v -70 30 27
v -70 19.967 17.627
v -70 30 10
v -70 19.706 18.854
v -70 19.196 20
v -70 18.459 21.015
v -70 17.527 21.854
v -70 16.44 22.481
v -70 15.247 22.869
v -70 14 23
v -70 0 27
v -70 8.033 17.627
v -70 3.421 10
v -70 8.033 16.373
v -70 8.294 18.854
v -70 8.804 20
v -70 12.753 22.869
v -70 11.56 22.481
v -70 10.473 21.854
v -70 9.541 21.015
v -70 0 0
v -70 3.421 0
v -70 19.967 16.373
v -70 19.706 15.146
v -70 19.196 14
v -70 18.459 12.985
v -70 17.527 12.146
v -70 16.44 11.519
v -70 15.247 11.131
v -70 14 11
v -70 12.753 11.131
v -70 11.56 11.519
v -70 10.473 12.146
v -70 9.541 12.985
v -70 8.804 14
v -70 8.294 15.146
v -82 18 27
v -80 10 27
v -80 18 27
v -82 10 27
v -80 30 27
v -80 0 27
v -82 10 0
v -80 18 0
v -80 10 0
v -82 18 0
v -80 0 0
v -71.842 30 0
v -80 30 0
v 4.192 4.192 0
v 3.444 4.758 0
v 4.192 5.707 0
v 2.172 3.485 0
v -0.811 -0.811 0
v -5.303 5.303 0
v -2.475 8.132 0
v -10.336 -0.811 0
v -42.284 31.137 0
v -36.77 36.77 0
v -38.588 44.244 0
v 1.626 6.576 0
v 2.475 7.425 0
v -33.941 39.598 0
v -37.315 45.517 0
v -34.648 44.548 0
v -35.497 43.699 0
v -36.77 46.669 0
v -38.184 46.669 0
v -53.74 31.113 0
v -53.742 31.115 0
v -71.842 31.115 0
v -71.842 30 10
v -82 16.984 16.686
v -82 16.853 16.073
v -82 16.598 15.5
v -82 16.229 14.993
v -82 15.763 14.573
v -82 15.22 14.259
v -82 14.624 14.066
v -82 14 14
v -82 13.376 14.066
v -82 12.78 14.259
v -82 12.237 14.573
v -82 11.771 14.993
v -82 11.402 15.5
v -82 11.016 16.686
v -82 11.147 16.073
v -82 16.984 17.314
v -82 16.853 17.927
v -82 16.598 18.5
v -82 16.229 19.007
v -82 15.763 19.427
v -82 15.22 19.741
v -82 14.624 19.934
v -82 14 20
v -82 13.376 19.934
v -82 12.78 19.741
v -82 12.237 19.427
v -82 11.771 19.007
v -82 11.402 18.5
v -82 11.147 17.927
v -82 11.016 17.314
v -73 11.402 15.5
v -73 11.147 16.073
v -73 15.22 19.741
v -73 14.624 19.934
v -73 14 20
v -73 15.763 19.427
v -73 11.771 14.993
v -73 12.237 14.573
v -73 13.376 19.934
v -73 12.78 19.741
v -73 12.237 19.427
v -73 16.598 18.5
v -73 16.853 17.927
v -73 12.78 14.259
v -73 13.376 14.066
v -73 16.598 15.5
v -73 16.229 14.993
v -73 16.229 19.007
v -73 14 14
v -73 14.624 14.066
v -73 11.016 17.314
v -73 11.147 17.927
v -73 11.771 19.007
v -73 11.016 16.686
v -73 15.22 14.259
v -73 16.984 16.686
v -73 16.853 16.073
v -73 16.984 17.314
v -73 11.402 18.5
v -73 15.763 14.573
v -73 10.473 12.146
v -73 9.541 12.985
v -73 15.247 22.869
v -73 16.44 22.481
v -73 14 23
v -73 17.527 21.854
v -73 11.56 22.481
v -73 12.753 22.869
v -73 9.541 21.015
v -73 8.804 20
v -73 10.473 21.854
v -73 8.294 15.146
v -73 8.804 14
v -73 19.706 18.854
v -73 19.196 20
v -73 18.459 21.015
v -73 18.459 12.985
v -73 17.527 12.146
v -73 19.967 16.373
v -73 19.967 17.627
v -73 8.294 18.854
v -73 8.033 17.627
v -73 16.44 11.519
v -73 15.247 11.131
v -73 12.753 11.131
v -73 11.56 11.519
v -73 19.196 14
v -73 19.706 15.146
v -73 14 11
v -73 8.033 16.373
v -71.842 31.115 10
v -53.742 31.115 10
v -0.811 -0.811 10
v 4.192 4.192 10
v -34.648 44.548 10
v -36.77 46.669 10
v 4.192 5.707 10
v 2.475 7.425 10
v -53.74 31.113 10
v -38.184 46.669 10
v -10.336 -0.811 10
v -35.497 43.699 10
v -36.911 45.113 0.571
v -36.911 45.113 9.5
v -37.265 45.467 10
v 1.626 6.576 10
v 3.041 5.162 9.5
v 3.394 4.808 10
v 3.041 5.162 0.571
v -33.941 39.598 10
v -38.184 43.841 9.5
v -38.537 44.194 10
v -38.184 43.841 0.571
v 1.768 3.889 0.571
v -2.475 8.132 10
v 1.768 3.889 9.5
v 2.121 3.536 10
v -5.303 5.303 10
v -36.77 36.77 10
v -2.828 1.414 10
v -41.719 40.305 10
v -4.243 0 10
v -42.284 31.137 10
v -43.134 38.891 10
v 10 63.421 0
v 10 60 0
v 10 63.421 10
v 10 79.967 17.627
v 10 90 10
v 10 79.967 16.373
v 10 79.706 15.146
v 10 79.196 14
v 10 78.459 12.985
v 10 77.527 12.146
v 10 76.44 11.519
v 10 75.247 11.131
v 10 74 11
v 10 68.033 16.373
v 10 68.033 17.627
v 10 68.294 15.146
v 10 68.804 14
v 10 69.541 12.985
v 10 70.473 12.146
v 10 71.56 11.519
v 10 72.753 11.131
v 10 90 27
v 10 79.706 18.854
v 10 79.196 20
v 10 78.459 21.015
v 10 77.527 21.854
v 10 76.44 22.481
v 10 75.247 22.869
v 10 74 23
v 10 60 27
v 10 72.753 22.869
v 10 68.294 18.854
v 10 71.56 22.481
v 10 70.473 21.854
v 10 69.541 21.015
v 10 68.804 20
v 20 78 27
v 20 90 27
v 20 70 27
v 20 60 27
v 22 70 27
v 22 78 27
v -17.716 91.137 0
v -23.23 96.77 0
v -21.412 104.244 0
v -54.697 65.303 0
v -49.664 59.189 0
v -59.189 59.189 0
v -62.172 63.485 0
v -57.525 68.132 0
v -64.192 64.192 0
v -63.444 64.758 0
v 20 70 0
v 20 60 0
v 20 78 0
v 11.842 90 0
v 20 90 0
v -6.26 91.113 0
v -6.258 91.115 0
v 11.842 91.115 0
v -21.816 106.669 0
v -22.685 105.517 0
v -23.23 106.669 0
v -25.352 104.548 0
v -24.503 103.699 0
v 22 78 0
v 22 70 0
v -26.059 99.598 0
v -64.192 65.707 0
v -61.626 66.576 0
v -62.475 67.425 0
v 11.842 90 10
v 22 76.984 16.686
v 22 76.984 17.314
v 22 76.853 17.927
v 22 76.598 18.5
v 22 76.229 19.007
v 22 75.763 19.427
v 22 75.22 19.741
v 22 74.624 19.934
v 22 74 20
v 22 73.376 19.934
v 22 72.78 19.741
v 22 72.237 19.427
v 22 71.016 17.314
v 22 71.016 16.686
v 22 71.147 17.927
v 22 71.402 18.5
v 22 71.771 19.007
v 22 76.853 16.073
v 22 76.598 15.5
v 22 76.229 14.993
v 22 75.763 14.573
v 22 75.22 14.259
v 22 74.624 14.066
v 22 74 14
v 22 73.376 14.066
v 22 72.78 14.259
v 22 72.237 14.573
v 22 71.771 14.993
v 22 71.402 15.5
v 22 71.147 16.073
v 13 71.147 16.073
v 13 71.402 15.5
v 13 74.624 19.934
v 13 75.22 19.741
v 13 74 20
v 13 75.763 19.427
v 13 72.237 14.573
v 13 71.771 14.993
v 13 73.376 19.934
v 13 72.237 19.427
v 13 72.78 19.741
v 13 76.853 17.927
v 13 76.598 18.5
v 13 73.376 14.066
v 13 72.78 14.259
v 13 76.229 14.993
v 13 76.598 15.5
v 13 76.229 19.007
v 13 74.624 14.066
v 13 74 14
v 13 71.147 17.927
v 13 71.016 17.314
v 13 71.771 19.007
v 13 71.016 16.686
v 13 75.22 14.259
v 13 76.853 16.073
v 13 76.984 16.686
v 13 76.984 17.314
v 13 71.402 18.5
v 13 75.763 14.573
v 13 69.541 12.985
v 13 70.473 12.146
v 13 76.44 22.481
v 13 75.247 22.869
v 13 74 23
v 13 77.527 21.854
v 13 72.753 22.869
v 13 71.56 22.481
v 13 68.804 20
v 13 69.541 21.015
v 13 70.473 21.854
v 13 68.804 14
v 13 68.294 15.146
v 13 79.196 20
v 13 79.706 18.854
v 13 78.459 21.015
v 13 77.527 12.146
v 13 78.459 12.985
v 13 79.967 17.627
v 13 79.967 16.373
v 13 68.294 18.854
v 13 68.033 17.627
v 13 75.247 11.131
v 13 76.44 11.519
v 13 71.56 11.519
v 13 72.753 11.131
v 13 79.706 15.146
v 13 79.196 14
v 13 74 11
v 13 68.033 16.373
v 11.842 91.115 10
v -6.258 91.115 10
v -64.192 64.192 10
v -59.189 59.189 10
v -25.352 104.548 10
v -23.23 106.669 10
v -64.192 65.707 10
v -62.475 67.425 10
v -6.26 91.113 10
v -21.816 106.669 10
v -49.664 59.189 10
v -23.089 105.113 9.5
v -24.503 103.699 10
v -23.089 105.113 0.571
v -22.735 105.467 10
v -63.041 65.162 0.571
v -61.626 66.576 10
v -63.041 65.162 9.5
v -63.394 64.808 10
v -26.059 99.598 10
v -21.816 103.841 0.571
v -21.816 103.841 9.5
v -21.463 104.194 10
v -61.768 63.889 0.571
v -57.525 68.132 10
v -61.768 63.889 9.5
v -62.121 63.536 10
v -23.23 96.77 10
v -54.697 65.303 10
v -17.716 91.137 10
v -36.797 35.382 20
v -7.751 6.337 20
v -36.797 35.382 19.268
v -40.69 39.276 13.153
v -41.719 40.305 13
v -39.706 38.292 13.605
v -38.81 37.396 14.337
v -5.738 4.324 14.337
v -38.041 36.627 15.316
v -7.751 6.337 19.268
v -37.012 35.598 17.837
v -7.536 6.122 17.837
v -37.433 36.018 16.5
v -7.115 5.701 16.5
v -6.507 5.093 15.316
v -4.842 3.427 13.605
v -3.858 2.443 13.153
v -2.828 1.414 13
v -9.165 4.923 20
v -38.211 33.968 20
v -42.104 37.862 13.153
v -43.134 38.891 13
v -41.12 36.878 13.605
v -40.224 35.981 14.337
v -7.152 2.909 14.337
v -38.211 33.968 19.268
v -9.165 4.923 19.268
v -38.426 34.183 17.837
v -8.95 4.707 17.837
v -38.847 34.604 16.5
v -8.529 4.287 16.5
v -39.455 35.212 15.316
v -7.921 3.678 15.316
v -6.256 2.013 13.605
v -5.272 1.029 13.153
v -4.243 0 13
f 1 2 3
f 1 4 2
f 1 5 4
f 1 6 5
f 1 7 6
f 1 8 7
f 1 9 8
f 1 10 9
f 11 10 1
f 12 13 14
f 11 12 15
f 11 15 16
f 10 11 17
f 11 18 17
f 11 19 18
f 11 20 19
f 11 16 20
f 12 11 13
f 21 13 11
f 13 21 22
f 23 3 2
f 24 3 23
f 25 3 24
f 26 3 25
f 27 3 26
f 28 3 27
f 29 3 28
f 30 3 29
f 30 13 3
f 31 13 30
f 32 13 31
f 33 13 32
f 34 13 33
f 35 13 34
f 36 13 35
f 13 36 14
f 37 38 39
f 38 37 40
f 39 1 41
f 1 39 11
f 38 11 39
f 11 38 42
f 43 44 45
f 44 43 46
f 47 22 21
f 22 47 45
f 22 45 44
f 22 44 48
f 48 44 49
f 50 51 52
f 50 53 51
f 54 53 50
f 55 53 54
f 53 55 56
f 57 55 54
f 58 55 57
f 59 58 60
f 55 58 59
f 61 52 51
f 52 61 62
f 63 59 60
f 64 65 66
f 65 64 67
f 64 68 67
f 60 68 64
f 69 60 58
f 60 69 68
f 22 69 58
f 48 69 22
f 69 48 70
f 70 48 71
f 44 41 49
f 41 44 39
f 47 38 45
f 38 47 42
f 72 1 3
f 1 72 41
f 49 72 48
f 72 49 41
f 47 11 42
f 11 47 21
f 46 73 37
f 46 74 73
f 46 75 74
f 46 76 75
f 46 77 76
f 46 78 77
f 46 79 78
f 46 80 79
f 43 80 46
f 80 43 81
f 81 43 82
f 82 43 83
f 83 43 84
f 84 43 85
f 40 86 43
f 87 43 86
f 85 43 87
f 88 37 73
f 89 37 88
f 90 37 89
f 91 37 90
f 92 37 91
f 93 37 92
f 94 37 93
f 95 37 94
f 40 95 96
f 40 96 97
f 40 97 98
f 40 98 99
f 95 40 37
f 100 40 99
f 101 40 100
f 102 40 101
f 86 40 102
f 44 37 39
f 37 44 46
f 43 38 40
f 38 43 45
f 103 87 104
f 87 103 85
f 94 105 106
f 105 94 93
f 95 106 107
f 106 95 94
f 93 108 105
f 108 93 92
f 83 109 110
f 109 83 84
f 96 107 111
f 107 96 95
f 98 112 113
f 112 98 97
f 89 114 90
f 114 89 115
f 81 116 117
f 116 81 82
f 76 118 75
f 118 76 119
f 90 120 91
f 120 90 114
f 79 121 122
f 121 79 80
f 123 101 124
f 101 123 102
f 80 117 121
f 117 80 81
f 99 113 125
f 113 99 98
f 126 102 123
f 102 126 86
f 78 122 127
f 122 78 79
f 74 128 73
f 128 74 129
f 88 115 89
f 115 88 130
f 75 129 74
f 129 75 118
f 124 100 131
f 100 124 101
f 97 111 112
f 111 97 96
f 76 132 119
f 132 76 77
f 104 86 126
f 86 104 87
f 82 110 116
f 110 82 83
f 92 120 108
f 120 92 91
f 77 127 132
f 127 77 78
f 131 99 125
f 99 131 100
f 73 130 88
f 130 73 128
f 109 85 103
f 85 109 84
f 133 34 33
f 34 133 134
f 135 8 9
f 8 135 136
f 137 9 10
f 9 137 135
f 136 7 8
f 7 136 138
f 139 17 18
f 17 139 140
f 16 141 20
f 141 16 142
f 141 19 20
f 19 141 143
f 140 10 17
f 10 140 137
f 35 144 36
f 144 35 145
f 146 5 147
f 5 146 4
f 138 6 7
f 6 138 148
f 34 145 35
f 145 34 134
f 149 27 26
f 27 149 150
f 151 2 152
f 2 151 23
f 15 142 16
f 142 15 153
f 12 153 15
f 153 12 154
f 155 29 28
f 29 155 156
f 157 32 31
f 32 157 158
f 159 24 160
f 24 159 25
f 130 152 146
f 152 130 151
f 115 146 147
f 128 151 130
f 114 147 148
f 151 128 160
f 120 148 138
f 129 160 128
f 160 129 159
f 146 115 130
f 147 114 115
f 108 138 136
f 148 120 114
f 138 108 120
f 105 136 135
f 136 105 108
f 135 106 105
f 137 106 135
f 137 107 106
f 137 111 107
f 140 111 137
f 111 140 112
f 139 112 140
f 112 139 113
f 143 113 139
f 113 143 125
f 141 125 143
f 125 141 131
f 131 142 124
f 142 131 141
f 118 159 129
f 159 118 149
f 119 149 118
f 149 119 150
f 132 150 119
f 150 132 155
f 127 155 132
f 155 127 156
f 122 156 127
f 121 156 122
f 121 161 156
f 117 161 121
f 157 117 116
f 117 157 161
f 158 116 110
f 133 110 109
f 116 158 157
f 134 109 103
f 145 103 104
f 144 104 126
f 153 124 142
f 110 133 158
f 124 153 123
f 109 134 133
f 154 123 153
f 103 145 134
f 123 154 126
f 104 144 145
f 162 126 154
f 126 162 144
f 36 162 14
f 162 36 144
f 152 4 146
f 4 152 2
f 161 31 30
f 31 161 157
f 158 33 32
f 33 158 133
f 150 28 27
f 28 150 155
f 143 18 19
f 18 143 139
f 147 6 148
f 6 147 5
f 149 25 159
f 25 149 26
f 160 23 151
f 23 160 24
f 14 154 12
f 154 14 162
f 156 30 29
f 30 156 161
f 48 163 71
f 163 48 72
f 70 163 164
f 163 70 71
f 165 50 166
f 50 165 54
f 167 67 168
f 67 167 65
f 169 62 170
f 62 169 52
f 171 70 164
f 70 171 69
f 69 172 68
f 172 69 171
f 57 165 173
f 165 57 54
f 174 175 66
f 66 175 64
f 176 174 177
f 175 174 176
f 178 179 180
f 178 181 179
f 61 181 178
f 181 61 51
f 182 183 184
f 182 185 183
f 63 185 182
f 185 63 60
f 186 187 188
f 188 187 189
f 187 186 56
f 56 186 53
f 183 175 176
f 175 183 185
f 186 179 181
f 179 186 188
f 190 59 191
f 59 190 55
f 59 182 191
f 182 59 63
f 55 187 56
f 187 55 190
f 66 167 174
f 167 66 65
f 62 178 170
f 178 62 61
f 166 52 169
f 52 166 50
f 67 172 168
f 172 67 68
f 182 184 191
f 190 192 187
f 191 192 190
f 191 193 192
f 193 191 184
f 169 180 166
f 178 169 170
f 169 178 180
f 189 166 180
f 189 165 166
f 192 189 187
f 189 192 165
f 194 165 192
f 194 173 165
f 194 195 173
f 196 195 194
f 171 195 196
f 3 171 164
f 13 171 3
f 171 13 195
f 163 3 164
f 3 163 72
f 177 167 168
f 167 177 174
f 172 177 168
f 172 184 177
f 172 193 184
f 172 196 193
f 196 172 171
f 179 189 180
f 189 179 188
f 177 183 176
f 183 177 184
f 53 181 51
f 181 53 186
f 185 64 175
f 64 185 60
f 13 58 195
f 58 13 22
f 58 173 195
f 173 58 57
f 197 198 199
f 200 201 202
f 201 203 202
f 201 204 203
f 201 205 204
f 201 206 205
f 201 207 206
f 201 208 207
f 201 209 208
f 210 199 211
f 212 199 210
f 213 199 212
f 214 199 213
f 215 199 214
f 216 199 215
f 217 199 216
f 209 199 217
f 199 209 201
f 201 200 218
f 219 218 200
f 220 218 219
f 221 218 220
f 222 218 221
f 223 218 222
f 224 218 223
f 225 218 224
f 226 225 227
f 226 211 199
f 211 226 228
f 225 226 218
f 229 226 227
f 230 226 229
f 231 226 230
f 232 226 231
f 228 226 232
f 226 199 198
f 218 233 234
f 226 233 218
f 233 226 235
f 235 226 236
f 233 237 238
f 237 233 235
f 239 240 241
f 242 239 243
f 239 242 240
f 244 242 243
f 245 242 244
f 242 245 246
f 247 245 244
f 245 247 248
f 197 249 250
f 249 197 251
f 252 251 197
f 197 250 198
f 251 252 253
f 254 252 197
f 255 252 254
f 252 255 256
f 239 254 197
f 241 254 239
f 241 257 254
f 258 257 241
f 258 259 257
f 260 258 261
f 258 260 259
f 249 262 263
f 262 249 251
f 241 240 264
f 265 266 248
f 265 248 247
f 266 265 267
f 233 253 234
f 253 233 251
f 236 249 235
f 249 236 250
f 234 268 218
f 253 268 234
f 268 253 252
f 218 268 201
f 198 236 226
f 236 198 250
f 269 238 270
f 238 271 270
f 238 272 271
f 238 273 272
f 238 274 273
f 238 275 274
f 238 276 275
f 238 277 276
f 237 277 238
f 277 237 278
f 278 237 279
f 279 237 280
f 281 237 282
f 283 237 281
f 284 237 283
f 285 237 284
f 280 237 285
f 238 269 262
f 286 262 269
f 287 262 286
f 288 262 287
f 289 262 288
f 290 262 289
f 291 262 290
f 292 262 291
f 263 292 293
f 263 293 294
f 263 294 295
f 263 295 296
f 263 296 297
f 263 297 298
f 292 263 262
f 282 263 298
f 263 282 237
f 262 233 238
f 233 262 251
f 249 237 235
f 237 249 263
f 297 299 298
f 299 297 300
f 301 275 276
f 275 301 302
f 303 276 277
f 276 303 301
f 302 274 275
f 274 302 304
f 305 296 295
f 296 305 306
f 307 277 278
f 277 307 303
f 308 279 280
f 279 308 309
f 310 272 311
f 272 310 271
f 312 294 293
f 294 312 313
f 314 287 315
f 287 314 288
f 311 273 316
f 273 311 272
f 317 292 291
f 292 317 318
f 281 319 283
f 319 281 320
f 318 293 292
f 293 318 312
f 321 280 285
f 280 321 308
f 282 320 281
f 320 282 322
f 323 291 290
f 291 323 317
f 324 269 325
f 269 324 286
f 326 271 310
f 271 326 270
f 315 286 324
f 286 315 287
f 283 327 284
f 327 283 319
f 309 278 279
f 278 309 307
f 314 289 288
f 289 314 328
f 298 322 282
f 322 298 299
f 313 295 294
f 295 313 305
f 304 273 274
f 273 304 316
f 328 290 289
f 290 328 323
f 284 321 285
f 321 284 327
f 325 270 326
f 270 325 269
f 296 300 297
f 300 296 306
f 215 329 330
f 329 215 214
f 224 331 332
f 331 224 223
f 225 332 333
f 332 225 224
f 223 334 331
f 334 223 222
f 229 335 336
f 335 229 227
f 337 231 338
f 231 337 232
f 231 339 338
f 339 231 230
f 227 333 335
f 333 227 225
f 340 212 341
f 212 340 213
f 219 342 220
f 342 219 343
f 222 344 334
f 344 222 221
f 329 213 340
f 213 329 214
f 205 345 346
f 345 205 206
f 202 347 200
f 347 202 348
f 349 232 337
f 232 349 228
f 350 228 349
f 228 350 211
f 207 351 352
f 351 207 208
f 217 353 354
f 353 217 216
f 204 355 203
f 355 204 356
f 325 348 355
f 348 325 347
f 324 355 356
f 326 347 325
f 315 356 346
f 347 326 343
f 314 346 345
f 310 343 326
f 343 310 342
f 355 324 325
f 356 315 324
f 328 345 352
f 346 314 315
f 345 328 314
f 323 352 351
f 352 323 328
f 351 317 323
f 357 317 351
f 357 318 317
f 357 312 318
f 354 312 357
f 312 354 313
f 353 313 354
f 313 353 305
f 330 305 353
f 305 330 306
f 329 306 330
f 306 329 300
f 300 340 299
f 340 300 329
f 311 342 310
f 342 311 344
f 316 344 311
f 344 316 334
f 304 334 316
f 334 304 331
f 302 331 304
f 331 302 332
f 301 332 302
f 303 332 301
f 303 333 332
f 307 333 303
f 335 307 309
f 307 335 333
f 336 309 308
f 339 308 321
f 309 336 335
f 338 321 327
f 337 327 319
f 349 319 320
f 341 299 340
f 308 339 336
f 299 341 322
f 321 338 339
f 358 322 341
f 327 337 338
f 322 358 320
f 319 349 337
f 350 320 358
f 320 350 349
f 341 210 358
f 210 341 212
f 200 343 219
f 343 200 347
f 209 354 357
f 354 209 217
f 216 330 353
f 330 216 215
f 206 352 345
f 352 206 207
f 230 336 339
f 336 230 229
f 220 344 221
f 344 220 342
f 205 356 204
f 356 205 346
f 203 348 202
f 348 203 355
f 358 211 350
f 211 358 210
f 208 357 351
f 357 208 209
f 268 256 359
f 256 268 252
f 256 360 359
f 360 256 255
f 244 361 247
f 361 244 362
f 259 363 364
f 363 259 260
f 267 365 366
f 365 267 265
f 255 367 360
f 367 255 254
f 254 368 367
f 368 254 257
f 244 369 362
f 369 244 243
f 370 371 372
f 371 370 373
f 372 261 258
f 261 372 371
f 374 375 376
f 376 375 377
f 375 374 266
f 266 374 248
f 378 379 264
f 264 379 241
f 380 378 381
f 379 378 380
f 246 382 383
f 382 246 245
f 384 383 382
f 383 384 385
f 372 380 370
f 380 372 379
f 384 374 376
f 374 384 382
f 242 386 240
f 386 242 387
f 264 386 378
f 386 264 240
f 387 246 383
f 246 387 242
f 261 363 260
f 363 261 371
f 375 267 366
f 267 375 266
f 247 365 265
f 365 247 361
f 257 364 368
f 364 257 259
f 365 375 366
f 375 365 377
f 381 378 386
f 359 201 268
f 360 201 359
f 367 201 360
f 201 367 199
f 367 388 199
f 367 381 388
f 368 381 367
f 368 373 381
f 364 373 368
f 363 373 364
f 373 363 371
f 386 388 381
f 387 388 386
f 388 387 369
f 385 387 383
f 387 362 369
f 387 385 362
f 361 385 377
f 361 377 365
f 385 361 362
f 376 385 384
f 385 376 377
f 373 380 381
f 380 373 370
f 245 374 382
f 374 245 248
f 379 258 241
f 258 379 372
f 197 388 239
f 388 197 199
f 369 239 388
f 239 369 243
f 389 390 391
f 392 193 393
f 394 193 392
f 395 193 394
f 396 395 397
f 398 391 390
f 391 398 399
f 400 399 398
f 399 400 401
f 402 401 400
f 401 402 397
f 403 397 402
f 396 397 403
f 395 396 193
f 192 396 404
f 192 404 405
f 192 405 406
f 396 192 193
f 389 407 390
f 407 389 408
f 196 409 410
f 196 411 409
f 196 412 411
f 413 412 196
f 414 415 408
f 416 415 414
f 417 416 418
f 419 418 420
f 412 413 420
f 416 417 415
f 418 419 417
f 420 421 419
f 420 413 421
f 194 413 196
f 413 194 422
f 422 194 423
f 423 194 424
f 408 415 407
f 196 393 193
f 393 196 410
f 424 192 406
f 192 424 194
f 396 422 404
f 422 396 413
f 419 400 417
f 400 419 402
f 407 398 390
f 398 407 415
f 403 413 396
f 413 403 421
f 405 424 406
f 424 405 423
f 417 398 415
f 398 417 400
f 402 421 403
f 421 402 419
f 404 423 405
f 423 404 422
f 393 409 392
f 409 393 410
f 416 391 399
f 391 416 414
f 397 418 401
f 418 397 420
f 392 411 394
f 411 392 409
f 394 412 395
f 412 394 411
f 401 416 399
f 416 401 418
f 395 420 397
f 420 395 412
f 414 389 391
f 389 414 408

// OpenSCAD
// Modified for 30x30 ALU frame mount of Rebelix printer by Lubomir Rintel
// From: https://raw.githubusercontent.com/prusa3d/Original-Prusa-i3/MK3S/Printed-Parts/SCAD/lcd-supports.scad

// PRUSA iteration4
// lcd supports
// GNU GPL v3
// Josef Průša <iam@josefprusa.cz> and contributors
// http://www.reprap.org/wiki/Prusa_Mendel
// http://prusamendel.org


$fn=30;

module body()
{

    difference() 
        {
        // base block
        translate([-55,-2,0]) cube([69,81,10]); 

            union ()
            {
                // outer body shape
                translate([-69.6,32,-1]) rotate([0,0,45]) cube([60,53,15]); 
                translate([13.7,89.7,-1]) rotate([0,0,135]) cube([60,42,15]);
                translate([-19,-9,-1]) cube([60,9,15] );   
                translate([7,-3,-1]) cube([60,68,16]);  
                translate([-16,60,-1]) cube([60,50,15] );
                translate([-41, -45,-1]) rotate([0,0,45]) cube([60,80,13]);  
                
                // pcb cout out
                translate([4,1.5,-1]) cube([1.8,56.5,17]); 
                translate([0,7.5,-1]) cube([5.8,44.5,17]); 
                translate([4.8,3.5,-1]) cube([5.8,52.5,17]);
                translate([8,-5,-1] ) rotate([0,0,45]) cube([5,5,17]);
                translate([8,58,-1]) rotate([0,0,45]) cube([5,5,17]);
            }

            // pcb inserts
            translate([4,3,8]) rotate([45,0,0]) cube([1.8,5,5]); 
            translate([4,56.5,8]) rotate([45,0,0]) cube([1.8,5,5]);     
            translate([4,3,-5]) rotate([45,0,0]) cube([1.8,5,5]); 
            translate([4,56.5,-5]) rotate([45,0,0]) cube([1.8,5,5]);     
        }
}

module mount() {
    difference() {
        translate([-80,0,0]) {
            cube([10,30,27]);
            translate([-2,10,0])
                cube([12,8,27]);
            
        }
        translate([0,10+8/2,17])
            rotate([0,-90,0]) {
                cylinder(100,6/2,6/2);
                cylinder(70+3,12/2,12/2);
            }
    }
}

module support()
{
    mount();
    
    difference() 
    {
    
        union()
        {
            rotate([0,0,45]) body();
            // screw block
            //translate([-72,22,0])  cube([30,16,10]);    
        }
        
        // lower angled part cut
        //translate([-75,-2,-1])  cube([20,14,15]);    
        //translate([-70,-2,-1]) cube([20,14,15]);    
        translate([-14,-82,-1]) rotate([0,0,45]) cube([60,100,15]);    

        //translate([-76.5,-2,-1]) cube([15,0,15]);    




/*                
        difference()
        {
            translate([-28,0,-1]) rotate([0,0,45]) cube([10,40,15]);    
            translate([-38,-12,-1]) cube([20,20,15]);    
            translate([-58,23.5,-1]) cube([25,25,15]);    
        }
        
/*        
        // screw holes
        translate([-71,18+4,5]) rotate([0,90,0]) cylinder(h=22, r=1.75, $fn=30);  
        translate([-70,29+4,5]) rotate([0,90,0]) cylinder(h=22, r=1.75, $fn=30);  
        
        // nut traps
        translate([-58,15.1+4,5-2.8]) cube([2.2,5.8,29.7]);    
        translate([-58,26.1+4,5-2.8]) cube([2.2,5.8,29.7]); 
     
        // version
        translate([-20,2,9.5]) rotate([0,0,0]) linear_extrude(height = 0.6) 
        { text("R1",font = "helvetica:style=Bold", size=5, center=true); }   
*/        
    }
}


module left_lcd_support()
{
    support();
     
    rotate([0,0,45]) difference()
    {
        // sd card shield
        translate([-3,3,10])  cube([2,55,10]); 
        translate([-4,3,20]) rotate([0,90,0]) cylinder( h=4, r=7, $fn=30); 
        translate([-4,58,20]) rotate([0,90,0]) cylinder( h=4, r=7, $fn=30); 
    }
}

translate([-60,60,0]) rotate([0,0,180]) 
mirror([0,1,0])
support();

//translate([-60,-2,0]) rotate([0,0,180]) support();
left_lcd_support();

 

//support();
